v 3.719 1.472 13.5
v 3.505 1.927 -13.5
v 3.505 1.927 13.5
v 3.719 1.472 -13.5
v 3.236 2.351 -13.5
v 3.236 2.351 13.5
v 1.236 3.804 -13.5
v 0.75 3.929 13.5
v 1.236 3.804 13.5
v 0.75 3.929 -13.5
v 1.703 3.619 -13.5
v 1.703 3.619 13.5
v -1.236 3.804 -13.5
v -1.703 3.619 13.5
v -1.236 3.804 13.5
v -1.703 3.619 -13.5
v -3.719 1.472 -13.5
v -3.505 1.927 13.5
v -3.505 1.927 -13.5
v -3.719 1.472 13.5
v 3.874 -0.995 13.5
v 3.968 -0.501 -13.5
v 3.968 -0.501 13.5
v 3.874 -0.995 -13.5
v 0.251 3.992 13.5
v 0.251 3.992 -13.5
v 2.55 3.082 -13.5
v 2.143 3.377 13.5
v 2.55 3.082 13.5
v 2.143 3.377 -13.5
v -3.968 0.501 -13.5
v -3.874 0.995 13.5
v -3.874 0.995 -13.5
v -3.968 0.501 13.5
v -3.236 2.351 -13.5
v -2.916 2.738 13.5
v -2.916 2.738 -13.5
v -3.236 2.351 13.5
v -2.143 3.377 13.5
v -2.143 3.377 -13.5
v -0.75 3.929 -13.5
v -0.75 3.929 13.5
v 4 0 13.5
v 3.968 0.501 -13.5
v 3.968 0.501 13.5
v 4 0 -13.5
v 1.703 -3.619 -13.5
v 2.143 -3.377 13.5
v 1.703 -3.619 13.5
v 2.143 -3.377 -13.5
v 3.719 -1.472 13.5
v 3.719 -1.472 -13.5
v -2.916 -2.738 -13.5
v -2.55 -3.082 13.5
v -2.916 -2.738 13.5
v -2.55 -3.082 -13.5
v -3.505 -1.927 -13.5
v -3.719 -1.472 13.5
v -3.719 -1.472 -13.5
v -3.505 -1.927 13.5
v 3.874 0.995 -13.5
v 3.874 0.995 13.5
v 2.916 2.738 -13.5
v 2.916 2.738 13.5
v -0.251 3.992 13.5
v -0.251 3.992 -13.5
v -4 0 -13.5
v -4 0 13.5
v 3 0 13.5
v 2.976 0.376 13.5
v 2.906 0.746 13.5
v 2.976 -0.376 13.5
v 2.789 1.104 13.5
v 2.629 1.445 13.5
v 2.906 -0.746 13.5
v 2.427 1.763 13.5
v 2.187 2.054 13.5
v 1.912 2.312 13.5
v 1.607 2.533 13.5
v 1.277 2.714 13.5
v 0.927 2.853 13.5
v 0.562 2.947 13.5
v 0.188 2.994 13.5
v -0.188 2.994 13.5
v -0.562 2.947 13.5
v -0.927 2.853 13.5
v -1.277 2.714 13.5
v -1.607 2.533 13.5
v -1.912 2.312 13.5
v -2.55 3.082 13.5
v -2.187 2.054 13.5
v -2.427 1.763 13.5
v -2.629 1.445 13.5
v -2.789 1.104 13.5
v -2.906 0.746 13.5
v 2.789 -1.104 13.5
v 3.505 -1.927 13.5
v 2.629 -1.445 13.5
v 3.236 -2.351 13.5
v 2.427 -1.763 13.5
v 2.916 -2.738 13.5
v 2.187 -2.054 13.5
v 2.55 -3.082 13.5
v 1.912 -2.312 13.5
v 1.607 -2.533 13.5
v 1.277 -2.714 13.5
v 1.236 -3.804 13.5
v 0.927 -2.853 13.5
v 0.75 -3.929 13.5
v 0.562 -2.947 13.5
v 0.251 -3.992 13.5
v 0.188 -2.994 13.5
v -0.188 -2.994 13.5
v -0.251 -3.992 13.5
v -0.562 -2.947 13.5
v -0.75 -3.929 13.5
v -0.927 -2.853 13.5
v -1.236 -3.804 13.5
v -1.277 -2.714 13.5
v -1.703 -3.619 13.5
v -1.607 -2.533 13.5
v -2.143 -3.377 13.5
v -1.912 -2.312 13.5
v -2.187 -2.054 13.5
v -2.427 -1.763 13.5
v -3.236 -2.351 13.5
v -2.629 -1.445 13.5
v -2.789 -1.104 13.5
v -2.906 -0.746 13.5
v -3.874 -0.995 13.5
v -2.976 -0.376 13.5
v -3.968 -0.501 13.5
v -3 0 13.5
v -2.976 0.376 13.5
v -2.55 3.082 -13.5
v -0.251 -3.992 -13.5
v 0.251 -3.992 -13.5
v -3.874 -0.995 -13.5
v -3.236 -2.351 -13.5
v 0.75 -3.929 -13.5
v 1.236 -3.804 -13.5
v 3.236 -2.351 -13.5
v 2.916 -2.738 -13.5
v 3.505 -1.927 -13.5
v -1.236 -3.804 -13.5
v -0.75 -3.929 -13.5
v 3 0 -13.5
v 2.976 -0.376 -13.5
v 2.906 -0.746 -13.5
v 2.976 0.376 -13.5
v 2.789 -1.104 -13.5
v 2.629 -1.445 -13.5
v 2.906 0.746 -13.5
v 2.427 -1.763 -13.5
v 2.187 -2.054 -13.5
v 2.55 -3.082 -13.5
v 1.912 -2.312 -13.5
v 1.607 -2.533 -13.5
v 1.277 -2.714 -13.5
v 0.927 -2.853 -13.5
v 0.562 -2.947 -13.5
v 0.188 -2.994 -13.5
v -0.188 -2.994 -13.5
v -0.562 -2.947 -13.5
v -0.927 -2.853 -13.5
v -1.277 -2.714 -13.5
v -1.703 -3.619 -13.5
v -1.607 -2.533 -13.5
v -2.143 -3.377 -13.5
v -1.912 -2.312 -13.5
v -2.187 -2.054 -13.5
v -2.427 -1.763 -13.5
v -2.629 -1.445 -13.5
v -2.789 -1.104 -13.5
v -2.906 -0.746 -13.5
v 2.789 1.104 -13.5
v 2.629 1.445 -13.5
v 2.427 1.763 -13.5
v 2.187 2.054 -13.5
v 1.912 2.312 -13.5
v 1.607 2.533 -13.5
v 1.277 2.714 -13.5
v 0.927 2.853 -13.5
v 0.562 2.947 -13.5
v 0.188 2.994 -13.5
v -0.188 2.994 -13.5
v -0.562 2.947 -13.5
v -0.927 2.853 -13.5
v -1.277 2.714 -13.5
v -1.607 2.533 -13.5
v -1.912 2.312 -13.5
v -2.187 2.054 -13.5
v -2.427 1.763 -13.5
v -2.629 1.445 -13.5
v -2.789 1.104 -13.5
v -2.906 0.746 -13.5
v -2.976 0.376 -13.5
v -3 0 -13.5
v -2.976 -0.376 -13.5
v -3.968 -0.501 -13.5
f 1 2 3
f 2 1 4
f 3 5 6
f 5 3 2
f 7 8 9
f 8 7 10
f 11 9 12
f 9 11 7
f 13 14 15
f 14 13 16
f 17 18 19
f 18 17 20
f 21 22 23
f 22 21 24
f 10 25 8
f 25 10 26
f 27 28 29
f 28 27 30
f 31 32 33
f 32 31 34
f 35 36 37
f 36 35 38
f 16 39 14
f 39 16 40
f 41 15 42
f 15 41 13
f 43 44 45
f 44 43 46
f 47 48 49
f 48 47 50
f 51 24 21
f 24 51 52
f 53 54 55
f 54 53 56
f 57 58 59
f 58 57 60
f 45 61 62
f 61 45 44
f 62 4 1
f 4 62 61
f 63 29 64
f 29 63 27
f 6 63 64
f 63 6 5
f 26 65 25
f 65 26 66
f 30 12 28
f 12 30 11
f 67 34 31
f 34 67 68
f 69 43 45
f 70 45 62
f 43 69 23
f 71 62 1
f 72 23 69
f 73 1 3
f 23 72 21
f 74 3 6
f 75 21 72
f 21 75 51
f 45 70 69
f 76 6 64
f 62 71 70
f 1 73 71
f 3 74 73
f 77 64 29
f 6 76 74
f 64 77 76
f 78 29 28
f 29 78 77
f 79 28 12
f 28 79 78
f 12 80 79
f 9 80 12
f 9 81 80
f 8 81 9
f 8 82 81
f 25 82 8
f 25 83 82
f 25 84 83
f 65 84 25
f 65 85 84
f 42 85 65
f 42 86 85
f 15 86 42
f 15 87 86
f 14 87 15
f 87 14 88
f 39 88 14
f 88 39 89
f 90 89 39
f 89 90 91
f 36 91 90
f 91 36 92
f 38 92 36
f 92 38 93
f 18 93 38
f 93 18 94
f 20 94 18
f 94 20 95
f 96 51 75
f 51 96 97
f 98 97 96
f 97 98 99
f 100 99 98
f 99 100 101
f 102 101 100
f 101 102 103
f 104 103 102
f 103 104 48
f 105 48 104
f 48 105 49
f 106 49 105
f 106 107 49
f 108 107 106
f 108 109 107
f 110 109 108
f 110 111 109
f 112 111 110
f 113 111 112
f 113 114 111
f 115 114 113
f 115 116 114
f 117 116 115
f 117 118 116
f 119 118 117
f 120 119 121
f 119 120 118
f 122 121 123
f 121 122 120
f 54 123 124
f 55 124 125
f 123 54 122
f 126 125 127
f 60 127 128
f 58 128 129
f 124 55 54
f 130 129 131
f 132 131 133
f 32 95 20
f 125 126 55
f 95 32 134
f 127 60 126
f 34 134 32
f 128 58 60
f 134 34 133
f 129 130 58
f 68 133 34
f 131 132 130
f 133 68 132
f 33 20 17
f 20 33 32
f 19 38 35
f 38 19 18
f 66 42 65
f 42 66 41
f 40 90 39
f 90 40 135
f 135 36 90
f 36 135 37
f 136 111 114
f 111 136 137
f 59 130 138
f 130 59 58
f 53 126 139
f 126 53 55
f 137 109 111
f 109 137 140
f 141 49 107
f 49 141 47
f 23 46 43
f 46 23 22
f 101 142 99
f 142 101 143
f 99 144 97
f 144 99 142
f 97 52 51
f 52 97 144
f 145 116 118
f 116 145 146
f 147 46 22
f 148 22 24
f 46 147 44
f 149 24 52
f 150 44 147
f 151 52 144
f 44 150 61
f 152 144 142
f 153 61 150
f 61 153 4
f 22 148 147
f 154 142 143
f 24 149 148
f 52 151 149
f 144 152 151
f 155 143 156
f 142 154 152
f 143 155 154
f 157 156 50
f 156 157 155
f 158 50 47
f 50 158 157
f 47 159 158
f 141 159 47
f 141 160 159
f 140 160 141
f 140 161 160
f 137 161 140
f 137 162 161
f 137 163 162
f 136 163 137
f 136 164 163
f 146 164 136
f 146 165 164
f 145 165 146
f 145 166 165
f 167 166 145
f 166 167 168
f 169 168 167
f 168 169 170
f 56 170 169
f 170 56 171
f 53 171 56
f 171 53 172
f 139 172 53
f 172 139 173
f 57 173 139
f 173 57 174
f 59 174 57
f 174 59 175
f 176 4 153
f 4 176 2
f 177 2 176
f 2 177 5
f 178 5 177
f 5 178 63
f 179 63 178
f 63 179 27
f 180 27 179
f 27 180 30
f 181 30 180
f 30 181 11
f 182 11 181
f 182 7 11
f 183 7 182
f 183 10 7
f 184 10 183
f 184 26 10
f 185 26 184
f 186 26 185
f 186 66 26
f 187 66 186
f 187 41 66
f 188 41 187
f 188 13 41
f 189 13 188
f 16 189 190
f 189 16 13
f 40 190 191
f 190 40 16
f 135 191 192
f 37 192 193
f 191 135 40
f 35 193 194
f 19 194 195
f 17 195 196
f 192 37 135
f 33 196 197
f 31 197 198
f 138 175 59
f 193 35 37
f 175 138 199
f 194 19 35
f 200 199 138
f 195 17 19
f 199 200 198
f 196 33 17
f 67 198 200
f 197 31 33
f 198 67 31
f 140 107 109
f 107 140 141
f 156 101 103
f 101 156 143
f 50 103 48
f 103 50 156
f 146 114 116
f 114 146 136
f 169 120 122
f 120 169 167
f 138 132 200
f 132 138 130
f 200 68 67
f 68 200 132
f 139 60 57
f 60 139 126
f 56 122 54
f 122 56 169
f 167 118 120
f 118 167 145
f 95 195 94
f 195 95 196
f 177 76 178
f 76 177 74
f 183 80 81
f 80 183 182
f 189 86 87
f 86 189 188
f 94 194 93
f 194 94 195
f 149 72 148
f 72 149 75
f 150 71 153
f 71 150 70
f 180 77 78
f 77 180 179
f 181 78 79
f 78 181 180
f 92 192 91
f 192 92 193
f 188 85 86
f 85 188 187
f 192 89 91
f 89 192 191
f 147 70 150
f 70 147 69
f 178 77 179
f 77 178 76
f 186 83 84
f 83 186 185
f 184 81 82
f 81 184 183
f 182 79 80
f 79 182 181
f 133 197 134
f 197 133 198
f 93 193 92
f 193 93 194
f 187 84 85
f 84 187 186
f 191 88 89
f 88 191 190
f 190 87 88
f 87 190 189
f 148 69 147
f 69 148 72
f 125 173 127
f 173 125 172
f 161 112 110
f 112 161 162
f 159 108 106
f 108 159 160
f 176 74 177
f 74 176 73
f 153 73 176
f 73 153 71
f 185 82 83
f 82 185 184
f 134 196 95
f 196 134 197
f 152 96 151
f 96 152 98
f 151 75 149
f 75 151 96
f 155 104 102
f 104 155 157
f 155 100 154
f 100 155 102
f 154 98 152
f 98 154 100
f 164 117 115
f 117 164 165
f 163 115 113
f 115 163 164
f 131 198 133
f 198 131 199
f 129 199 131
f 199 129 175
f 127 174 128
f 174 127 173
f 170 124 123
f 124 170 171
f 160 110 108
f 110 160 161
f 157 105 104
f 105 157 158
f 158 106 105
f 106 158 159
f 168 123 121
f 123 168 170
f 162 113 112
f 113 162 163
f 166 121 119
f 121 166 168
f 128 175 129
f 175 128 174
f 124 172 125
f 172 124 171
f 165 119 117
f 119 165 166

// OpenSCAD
$fn = 50;


difference() {
	union() {
		translate(v = [0, 0, -13.5000000000]) {
			cylinder(h = 27, r = 4.0000000000);
		}
	}
	union() {
		translate(v = [0, 0, -100.0000000000]) {
			cylinder(h = 200, r = 3);
		}
	}
}
